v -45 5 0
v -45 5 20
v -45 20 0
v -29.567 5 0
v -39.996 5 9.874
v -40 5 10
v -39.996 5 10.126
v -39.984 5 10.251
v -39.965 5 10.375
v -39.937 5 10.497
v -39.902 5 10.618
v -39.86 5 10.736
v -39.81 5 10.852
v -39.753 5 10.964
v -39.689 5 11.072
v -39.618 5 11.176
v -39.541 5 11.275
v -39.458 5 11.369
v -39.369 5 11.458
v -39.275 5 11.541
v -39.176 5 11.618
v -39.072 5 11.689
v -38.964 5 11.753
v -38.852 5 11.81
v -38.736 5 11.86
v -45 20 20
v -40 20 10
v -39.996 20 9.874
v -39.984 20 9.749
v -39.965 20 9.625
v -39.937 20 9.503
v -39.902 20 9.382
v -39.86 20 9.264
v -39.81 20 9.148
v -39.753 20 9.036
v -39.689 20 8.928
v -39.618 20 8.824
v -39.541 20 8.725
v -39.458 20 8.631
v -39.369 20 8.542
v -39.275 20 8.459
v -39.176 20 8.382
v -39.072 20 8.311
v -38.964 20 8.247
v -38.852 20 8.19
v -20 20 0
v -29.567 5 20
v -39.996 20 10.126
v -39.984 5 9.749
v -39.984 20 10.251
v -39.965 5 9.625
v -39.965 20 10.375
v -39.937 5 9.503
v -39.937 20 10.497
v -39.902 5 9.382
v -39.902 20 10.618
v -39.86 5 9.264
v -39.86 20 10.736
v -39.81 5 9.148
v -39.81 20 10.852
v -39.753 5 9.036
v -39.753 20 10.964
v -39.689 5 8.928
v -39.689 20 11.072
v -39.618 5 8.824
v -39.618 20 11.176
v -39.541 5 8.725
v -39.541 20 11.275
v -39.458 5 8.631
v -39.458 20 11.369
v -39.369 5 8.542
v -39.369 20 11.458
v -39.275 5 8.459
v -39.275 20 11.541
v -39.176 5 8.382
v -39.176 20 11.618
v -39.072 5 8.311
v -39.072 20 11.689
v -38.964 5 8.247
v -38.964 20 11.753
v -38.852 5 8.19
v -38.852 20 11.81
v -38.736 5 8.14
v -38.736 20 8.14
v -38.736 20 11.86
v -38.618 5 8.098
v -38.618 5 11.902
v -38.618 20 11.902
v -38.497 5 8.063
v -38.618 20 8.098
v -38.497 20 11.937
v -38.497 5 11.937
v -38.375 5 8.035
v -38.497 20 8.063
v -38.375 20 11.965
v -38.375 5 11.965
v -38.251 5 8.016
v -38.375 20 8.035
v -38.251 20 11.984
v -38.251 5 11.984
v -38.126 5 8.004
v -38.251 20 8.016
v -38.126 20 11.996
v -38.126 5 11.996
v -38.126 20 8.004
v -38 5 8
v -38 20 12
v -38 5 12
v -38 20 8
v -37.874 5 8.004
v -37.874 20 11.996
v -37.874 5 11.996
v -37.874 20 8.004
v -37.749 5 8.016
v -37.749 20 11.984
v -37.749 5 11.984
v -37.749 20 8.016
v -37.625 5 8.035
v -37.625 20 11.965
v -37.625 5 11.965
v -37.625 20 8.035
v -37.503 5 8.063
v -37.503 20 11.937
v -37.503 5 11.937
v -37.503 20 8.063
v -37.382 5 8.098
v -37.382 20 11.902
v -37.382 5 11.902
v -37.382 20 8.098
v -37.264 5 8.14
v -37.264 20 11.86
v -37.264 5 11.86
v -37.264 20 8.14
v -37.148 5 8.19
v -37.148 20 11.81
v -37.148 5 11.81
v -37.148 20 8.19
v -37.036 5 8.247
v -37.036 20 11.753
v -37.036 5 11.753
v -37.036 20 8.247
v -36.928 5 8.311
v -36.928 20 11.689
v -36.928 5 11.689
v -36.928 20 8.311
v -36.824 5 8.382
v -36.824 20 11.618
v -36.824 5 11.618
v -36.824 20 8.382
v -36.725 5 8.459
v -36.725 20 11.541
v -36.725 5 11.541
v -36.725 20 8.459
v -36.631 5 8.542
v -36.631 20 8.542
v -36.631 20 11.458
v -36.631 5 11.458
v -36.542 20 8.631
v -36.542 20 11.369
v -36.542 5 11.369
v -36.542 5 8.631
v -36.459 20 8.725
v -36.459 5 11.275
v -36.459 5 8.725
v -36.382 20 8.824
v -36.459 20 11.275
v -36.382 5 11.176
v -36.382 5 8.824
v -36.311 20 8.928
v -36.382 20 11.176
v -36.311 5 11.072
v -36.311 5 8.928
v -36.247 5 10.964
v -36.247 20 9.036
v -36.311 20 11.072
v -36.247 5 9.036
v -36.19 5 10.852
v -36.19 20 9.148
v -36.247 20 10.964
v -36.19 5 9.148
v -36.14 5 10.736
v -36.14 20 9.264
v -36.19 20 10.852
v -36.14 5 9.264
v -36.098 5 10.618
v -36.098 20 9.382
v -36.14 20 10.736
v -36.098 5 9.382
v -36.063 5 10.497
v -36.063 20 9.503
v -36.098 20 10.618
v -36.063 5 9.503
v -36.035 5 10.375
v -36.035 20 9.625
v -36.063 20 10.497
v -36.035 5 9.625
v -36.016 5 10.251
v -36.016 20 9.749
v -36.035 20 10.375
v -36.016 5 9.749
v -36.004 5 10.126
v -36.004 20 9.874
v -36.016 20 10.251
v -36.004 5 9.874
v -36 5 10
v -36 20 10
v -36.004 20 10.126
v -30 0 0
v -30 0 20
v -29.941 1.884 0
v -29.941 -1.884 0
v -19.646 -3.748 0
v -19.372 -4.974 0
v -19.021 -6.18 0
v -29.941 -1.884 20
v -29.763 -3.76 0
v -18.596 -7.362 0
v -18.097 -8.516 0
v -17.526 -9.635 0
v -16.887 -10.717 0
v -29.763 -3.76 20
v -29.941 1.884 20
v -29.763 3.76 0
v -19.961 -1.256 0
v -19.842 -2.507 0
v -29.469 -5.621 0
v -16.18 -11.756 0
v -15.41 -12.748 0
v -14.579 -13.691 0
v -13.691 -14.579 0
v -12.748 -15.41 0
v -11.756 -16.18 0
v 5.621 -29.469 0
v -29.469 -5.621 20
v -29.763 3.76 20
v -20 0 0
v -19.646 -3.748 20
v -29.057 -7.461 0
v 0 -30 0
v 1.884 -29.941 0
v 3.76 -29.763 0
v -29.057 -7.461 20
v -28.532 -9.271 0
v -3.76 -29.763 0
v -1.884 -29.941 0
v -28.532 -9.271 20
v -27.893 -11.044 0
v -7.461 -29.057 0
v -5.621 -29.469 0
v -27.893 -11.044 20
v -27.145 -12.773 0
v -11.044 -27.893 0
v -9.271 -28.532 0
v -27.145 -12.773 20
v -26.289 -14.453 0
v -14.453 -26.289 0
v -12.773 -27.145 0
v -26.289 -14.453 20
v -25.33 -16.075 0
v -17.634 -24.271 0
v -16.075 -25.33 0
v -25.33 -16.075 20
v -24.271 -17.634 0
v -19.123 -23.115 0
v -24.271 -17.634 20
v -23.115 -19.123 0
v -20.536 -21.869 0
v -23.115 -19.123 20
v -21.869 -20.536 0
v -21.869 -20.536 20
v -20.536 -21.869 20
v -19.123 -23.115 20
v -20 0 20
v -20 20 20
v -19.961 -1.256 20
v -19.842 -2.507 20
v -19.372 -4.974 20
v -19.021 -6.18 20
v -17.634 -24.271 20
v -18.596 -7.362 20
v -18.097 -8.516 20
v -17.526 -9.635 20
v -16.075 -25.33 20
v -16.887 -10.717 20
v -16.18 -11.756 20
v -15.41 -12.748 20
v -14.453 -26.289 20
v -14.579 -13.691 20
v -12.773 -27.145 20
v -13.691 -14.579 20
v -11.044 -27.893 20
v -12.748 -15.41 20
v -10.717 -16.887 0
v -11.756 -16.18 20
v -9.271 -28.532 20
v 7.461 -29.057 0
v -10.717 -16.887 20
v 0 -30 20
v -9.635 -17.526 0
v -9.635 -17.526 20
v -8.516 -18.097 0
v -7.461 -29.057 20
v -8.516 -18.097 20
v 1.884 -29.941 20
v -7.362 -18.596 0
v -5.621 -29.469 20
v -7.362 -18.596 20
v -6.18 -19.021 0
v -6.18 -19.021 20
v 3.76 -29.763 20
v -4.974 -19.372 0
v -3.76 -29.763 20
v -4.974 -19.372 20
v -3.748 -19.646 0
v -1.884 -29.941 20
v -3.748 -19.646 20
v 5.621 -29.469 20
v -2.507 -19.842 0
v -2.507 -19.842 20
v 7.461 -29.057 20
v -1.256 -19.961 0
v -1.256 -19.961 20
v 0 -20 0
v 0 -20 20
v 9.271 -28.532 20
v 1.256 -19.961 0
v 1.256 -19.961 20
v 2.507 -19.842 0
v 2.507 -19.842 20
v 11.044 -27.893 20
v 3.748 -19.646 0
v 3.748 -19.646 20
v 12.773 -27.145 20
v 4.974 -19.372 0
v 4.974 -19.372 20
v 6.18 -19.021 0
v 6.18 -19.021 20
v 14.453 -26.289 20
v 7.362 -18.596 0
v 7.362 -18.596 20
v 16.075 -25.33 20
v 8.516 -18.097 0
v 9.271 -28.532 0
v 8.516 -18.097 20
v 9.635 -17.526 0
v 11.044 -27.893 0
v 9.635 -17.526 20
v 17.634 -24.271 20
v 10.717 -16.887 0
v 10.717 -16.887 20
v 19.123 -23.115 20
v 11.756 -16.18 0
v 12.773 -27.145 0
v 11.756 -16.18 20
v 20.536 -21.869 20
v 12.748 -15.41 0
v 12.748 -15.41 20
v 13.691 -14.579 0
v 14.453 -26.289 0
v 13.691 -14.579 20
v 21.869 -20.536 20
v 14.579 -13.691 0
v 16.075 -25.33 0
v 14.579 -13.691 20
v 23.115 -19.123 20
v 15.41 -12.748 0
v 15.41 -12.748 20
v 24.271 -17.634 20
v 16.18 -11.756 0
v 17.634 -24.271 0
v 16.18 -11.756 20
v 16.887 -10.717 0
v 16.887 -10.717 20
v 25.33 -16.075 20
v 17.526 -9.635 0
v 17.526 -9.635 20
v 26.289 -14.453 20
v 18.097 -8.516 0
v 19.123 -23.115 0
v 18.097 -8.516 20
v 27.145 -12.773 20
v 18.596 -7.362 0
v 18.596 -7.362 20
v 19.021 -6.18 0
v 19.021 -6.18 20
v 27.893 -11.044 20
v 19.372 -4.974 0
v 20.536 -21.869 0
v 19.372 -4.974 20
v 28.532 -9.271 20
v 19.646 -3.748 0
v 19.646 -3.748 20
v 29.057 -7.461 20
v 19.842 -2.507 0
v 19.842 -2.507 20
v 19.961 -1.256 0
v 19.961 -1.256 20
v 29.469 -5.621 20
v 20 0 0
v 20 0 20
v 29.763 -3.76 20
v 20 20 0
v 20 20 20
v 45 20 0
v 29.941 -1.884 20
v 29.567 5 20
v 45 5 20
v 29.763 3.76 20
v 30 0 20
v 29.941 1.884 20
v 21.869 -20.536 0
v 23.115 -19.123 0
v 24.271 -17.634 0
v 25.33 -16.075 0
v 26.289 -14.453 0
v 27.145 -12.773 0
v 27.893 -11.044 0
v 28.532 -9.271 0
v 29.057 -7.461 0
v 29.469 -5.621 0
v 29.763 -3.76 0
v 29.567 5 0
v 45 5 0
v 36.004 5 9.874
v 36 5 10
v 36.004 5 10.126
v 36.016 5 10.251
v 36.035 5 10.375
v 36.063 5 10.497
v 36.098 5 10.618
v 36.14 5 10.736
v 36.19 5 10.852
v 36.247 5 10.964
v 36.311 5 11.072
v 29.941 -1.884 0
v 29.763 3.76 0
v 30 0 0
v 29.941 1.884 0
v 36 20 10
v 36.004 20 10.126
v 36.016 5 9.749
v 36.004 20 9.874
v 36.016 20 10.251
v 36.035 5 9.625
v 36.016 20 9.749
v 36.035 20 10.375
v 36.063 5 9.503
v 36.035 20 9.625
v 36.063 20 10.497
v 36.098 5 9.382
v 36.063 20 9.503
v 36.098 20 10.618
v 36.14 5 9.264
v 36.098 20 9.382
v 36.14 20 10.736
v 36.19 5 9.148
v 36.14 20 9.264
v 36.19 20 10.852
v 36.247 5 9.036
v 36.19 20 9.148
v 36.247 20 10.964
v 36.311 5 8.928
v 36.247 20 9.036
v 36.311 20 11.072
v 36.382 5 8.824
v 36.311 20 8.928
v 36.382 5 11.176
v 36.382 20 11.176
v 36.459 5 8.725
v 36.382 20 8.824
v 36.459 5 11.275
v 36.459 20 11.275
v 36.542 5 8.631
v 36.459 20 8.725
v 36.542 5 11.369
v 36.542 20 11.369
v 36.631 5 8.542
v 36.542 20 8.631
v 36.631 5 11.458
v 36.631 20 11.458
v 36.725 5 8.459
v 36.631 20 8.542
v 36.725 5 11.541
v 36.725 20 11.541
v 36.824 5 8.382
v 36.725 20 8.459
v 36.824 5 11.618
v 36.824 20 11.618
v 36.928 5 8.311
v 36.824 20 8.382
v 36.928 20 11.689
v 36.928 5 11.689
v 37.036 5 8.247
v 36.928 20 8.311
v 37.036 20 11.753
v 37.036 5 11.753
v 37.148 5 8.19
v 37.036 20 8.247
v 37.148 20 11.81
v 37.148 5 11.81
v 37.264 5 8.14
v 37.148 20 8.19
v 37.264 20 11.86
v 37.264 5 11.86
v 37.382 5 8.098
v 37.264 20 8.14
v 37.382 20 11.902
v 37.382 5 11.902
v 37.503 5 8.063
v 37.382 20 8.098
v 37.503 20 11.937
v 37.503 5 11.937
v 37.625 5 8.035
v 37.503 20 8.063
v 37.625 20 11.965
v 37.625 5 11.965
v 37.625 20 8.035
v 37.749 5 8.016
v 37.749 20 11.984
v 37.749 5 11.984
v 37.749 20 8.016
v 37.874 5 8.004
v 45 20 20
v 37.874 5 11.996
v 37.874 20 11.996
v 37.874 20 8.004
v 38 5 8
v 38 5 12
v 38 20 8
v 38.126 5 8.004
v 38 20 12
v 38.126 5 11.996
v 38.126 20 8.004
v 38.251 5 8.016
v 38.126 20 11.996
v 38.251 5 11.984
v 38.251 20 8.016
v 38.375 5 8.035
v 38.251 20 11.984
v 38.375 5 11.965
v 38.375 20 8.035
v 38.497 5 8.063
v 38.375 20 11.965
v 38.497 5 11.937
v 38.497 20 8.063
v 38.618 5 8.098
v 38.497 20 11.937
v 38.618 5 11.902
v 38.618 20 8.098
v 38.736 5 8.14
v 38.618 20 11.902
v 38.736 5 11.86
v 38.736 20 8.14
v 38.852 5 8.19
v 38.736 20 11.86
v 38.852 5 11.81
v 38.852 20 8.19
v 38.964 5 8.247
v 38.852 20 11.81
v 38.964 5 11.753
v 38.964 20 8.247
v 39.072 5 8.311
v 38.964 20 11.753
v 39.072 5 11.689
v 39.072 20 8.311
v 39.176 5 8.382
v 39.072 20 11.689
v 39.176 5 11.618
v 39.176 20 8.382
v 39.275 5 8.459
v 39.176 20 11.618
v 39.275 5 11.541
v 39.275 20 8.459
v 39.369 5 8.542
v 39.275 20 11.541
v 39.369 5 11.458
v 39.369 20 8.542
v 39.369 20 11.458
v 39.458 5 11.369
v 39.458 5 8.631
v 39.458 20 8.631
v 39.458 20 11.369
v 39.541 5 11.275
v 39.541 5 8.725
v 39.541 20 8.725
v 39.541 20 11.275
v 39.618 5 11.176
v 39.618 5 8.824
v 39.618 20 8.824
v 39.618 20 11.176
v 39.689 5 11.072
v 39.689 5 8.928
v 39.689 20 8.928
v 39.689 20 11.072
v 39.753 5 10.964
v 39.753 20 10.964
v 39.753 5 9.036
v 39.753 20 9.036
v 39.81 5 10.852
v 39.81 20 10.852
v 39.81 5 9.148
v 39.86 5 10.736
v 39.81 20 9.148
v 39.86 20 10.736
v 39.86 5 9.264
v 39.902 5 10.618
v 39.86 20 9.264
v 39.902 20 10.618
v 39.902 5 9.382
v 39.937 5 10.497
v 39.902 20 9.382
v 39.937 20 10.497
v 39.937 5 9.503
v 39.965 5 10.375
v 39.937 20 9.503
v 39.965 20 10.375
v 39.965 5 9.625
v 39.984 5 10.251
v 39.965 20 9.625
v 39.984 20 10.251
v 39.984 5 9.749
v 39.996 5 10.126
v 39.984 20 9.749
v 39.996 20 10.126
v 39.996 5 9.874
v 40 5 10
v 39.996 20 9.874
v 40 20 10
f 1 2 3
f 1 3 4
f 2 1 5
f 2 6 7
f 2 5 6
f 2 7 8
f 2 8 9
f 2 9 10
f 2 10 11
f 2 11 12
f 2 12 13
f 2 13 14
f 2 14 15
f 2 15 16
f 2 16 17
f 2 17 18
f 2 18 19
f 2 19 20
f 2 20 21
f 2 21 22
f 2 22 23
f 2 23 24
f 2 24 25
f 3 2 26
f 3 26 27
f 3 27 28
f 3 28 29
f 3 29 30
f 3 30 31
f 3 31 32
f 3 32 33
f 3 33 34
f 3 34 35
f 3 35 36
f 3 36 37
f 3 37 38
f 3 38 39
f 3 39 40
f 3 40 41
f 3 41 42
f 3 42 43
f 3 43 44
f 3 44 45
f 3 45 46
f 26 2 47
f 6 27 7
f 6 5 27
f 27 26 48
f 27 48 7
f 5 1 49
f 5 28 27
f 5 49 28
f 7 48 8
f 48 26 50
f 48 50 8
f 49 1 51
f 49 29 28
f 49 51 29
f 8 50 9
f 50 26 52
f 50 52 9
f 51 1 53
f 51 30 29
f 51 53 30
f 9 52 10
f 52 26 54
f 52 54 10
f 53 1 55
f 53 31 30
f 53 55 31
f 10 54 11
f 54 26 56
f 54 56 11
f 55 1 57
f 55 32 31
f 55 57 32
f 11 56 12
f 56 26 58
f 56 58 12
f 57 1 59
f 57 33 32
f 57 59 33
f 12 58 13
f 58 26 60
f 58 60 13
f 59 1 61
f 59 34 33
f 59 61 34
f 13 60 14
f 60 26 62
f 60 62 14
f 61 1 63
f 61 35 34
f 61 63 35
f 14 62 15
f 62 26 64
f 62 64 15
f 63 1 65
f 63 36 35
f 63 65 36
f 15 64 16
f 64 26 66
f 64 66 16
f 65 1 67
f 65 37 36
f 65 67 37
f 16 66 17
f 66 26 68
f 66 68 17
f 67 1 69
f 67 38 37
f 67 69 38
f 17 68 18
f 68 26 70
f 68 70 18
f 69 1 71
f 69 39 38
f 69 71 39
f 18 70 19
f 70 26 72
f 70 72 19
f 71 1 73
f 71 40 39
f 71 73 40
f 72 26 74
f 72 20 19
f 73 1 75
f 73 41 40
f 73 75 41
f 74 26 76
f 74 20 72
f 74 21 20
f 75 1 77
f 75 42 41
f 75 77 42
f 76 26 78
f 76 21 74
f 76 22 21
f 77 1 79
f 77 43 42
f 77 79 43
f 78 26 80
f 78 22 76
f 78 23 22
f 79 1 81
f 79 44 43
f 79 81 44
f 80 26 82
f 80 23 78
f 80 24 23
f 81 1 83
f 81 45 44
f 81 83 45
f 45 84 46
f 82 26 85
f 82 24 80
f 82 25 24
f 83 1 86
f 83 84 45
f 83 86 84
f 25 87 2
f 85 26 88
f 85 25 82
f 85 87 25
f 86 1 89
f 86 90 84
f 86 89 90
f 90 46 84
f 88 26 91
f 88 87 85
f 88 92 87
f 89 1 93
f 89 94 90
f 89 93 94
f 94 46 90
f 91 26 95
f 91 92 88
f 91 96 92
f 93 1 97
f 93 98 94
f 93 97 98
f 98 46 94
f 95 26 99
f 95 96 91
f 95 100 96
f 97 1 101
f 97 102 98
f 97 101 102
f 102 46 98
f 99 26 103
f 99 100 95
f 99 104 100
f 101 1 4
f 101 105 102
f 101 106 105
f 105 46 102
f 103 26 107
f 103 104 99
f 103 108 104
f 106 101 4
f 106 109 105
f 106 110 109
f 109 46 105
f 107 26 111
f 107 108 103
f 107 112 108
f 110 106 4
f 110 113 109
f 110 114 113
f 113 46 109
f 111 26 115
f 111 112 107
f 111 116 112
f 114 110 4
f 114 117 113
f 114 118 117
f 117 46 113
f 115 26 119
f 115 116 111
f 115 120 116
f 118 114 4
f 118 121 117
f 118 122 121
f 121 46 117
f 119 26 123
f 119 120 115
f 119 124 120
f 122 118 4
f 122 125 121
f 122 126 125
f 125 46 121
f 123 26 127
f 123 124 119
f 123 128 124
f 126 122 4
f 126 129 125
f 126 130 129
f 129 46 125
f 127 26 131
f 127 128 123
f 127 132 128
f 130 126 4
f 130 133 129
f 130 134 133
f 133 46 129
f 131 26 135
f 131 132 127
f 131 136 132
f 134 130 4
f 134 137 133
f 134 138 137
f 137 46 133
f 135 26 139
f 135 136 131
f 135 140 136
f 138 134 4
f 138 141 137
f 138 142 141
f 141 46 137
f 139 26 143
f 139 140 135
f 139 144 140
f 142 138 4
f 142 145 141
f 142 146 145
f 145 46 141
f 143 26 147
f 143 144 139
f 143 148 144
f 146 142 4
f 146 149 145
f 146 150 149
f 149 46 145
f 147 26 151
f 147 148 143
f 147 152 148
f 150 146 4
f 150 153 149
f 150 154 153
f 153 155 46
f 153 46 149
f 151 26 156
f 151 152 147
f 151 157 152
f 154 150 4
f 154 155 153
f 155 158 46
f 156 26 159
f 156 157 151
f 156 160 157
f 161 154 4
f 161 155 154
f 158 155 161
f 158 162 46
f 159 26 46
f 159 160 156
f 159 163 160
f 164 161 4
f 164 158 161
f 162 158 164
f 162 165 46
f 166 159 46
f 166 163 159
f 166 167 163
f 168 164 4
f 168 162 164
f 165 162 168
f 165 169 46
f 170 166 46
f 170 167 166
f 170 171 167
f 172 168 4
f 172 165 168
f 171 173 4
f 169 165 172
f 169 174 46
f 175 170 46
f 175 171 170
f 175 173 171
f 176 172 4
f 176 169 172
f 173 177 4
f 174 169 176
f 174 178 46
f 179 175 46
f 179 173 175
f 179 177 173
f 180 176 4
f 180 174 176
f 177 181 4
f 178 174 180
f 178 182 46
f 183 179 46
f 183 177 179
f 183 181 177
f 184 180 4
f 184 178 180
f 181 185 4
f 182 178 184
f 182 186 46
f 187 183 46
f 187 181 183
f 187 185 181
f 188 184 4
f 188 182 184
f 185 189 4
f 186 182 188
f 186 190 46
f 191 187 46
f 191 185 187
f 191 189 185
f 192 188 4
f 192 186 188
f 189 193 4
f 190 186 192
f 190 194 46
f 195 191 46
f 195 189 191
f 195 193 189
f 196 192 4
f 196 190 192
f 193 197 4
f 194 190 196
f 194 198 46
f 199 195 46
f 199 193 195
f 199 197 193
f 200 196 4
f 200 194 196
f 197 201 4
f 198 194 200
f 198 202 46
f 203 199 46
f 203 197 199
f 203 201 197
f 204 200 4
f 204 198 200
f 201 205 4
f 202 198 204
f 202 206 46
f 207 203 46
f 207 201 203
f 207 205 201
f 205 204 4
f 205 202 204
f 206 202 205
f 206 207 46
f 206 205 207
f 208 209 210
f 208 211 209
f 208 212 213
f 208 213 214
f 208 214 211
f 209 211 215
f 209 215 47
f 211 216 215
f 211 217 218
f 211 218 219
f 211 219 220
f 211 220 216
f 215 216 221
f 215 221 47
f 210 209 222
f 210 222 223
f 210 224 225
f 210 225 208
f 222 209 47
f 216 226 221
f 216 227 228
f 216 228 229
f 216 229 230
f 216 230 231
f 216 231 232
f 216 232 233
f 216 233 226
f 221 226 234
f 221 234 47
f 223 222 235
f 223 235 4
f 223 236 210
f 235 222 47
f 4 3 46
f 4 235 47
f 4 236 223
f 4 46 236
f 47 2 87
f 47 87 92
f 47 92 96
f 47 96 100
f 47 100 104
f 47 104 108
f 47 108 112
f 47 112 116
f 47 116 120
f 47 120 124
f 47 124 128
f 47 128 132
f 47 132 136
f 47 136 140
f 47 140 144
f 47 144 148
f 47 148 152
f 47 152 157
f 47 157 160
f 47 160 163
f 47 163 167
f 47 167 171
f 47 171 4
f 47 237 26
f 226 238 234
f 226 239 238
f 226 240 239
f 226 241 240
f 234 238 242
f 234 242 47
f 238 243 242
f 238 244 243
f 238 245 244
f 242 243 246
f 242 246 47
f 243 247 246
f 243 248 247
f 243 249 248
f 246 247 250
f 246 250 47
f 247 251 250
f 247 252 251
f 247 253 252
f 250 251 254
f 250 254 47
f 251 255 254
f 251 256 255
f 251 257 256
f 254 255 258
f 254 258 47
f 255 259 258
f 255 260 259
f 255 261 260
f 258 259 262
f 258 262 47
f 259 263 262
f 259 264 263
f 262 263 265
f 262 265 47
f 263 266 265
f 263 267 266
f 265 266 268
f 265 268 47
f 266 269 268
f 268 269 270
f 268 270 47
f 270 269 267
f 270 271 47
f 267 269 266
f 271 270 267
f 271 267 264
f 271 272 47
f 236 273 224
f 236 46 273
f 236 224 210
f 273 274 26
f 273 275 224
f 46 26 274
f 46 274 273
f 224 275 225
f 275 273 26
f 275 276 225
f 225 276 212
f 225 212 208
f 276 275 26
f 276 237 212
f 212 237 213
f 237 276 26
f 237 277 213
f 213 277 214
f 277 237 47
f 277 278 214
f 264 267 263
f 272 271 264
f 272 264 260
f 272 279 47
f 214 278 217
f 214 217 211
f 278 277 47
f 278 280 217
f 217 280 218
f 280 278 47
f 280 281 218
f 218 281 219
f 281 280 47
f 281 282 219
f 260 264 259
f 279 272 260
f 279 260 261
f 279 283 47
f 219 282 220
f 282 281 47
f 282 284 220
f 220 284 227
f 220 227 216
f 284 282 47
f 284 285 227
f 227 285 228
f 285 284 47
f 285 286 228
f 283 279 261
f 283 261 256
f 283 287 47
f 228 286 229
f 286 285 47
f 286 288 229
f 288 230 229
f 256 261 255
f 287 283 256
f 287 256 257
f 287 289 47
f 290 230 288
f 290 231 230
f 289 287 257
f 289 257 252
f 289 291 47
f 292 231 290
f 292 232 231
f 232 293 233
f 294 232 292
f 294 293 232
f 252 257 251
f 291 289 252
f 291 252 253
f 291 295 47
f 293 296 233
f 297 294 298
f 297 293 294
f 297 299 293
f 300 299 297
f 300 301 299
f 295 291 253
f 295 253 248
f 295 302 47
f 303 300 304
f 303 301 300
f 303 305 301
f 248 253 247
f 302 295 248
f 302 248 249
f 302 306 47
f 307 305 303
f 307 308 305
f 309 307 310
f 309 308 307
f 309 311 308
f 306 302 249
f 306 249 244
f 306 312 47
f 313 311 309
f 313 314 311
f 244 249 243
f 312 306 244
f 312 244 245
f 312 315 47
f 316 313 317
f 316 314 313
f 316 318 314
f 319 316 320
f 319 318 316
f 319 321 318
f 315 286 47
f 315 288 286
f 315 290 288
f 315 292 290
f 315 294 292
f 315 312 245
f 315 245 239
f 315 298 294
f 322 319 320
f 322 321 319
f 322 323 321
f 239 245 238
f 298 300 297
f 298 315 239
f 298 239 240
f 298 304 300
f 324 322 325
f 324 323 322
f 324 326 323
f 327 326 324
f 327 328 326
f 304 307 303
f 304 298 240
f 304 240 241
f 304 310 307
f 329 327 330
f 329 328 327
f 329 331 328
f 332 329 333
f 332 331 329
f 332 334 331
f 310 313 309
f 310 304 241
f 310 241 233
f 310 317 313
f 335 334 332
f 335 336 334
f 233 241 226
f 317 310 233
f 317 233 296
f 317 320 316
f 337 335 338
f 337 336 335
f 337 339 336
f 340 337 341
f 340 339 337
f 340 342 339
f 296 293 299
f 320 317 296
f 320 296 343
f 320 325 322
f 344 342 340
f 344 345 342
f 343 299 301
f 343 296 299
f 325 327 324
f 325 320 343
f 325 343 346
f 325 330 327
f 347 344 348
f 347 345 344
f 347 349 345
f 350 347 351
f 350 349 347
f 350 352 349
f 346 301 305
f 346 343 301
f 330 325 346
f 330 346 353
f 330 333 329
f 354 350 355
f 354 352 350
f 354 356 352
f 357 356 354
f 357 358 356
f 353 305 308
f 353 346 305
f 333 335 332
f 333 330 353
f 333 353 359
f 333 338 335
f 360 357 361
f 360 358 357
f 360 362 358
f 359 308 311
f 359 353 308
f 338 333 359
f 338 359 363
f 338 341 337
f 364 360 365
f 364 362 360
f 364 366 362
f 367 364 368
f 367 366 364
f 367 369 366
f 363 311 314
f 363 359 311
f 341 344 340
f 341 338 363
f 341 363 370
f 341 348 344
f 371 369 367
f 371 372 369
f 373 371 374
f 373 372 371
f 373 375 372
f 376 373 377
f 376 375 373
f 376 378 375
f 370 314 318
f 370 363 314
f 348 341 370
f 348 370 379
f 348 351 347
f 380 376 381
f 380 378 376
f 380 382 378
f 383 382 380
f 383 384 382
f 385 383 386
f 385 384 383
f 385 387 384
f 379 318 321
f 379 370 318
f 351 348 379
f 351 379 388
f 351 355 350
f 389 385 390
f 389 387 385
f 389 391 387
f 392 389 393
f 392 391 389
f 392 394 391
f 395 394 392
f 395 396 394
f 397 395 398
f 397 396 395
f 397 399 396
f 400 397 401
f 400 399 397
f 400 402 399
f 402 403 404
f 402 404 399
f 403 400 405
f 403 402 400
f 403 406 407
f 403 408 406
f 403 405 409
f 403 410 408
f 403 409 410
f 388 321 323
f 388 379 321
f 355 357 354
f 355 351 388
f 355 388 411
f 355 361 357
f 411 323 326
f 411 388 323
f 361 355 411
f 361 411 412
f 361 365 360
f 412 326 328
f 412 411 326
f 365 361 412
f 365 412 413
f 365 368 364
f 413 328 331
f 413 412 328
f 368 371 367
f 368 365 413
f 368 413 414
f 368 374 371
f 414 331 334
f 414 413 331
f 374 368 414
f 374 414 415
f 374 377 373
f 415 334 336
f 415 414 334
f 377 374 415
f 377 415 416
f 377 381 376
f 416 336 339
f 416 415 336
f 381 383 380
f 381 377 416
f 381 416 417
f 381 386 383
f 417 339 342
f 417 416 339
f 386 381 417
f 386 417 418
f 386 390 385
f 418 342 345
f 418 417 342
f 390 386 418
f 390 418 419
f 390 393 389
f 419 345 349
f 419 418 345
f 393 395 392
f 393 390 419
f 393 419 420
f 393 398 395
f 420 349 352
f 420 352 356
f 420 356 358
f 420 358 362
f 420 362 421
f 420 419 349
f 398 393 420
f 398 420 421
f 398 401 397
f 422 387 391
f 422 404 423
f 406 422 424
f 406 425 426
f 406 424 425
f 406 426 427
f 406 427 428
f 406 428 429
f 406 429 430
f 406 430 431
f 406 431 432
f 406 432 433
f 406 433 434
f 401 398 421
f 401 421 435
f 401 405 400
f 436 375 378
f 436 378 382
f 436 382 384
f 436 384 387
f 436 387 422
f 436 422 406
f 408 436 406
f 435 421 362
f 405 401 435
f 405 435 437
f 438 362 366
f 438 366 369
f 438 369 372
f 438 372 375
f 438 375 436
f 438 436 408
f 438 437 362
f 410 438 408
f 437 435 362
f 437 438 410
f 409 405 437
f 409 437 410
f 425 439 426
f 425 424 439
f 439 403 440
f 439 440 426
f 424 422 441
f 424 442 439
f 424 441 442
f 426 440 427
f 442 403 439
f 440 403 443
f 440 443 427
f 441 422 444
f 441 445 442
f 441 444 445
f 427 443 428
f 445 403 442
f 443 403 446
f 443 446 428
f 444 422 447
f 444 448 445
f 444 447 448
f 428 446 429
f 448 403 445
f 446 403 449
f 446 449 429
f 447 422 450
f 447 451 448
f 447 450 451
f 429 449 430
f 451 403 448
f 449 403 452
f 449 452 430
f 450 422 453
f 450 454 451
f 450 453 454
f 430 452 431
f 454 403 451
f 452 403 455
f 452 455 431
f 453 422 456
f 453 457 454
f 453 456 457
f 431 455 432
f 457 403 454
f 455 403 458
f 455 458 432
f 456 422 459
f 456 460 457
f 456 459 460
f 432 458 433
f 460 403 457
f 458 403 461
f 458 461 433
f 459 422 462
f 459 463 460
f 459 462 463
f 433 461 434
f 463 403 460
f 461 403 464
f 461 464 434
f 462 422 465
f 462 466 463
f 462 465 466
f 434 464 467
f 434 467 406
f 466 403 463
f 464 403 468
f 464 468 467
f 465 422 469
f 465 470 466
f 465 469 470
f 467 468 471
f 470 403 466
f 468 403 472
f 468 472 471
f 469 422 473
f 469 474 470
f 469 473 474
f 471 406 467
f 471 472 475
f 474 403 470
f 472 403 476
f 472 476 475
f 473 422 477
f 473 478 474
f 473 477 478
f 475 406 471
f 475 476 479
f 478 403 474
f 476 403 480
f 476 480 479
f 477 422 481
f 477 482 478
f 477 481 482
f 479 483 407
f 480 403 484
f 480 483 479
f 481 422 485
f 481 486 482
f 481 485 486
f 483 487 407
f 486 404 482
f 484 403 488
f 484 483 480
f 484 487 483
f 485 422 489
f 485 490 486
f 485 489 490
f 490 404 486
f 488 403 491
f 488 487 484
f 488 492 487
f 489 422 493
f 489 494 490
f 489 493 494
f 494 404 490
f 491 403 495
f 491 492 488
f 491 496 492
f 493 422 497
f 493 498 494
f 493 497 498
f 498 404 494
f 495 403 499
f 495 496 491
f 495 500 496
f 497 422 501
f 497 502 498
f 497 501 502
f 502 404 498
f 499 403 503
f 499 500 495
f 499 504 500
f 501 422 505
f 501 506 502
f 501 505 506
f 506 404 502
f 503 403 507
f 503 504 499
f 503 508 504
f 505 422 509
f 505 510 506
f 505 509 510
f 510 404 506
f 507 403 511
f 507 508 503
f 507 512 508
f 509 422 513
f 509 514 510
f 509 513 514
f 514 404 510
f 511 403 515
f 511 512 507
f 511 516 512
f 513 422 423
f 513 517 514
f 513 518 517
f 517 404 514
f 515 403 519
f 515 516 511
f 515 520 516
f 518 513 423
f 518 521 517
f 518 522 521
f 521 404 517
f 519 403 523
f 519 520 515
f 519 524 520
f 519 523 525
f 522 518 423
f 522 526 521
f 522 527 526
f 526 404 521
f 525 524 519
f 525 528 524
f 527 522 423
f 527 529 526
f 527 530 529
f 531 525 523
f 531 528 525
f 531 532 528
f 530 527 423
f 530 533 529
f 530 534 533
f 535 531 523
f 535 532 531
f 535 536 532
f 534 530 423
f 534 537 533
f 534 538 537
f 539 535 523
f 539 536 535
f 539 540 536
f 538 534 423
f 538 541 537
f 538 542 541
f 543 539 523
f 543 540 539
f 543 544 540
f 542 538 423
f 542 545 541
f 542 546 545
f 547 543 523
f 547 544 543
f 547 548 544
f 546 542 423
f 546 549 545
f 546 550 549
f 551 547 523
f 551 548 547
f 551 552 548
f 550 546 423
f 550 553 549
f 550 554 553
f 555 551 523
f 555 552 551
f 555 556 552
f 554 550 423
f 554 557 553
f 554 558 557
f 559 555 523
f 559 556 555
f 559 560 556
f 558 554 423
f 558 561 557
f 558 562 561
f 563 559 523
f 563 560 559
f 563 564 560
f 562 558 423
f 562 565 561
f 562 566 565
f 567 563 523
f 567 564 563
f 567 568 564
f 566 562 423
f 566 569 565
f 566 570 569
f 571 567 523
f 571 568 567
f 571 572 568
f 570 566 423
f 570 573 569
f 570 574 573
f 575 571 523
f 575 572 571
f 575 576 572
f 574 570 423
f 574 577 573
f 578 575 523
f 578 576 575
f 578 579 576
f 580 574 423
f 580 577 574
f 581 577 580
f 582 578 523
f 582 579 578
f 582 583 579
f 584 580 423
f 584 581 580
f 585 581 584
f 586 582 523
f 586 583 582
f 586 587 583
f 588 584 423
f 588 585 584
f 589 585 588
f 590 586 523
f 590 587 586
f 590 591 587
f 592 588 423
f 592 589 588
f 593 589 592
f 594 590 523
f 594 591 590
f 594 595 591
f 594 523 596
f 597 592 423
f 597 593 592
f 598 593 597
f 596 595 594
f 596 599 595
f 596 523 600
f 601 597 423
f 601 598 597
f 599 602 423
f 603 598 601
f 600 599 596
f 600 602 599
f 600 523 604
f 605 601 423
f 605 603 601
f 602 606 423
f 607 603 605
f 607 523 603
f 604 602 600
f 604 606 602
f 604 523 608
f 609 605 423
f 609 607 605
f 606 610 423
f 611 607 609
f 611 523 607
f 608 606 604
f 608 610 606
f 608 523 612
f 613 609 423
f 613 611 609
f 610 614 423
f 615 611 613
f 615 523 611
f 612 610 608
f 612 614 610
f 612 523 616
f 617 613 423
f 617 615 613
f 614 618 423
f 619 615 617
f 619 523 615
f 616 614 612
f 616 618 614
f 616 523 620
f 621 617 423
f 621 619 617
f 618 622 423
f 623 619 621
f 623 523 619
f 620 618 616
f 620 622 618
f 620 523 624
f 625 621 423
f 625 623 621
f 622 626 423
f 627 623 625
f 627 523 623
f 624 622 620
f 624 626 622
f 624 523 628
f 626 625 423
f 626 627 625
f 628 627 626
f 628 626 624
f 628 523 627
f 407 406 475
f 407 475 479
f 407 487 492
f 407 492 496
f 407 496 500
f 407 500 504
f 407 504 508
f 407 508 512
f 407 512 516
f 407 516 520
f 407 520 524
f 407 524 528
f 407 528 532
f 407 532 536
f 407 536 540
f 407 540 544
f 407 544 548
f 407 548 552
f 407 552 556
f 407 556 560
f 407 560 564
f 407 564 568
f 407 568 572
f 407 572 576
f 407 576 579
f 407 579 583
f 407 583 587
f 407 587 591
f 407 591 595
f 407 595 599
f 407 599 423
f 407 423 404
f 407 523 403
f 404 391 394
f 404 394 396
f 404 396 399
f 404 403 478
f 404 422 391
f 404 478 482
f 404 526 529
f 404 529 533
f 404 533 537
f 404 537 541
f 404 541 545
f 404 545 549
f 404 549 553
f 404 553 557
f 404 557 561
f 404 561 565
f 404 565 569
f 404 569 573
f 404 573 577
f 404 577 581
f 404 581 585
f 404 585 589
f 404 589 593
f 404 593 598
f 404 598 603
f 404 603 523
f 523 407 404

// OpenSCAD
$fn=100;
difference() {
    union() {
        cylinder(h=20, r=30);
        translate([-45, 5, 0])
            cube([90, 15, 20]);
    }
    translate([0,0,-1]) {
        // retrait du cylindre intérieur
        cylinder(h=22, r=20);
        // retrait de l'excedent du cylindre ext
        translate([-45, 20, 0])
            cube([90, 15, 22]);
        // retrait de la partie du cylindre ext entre les supports
        translate([-20, 0, 0])
            cube([40, 50, 22]);
    }
    // trous de fixation
    translate([-38, 0, 10])
        rotate([-90, 0, 0])
            cylinder(h=50, r=2);
    translate([38, 0, 10])
        rotate([-90, 0, 0])
            cylinder(h=50, r=2);
}
